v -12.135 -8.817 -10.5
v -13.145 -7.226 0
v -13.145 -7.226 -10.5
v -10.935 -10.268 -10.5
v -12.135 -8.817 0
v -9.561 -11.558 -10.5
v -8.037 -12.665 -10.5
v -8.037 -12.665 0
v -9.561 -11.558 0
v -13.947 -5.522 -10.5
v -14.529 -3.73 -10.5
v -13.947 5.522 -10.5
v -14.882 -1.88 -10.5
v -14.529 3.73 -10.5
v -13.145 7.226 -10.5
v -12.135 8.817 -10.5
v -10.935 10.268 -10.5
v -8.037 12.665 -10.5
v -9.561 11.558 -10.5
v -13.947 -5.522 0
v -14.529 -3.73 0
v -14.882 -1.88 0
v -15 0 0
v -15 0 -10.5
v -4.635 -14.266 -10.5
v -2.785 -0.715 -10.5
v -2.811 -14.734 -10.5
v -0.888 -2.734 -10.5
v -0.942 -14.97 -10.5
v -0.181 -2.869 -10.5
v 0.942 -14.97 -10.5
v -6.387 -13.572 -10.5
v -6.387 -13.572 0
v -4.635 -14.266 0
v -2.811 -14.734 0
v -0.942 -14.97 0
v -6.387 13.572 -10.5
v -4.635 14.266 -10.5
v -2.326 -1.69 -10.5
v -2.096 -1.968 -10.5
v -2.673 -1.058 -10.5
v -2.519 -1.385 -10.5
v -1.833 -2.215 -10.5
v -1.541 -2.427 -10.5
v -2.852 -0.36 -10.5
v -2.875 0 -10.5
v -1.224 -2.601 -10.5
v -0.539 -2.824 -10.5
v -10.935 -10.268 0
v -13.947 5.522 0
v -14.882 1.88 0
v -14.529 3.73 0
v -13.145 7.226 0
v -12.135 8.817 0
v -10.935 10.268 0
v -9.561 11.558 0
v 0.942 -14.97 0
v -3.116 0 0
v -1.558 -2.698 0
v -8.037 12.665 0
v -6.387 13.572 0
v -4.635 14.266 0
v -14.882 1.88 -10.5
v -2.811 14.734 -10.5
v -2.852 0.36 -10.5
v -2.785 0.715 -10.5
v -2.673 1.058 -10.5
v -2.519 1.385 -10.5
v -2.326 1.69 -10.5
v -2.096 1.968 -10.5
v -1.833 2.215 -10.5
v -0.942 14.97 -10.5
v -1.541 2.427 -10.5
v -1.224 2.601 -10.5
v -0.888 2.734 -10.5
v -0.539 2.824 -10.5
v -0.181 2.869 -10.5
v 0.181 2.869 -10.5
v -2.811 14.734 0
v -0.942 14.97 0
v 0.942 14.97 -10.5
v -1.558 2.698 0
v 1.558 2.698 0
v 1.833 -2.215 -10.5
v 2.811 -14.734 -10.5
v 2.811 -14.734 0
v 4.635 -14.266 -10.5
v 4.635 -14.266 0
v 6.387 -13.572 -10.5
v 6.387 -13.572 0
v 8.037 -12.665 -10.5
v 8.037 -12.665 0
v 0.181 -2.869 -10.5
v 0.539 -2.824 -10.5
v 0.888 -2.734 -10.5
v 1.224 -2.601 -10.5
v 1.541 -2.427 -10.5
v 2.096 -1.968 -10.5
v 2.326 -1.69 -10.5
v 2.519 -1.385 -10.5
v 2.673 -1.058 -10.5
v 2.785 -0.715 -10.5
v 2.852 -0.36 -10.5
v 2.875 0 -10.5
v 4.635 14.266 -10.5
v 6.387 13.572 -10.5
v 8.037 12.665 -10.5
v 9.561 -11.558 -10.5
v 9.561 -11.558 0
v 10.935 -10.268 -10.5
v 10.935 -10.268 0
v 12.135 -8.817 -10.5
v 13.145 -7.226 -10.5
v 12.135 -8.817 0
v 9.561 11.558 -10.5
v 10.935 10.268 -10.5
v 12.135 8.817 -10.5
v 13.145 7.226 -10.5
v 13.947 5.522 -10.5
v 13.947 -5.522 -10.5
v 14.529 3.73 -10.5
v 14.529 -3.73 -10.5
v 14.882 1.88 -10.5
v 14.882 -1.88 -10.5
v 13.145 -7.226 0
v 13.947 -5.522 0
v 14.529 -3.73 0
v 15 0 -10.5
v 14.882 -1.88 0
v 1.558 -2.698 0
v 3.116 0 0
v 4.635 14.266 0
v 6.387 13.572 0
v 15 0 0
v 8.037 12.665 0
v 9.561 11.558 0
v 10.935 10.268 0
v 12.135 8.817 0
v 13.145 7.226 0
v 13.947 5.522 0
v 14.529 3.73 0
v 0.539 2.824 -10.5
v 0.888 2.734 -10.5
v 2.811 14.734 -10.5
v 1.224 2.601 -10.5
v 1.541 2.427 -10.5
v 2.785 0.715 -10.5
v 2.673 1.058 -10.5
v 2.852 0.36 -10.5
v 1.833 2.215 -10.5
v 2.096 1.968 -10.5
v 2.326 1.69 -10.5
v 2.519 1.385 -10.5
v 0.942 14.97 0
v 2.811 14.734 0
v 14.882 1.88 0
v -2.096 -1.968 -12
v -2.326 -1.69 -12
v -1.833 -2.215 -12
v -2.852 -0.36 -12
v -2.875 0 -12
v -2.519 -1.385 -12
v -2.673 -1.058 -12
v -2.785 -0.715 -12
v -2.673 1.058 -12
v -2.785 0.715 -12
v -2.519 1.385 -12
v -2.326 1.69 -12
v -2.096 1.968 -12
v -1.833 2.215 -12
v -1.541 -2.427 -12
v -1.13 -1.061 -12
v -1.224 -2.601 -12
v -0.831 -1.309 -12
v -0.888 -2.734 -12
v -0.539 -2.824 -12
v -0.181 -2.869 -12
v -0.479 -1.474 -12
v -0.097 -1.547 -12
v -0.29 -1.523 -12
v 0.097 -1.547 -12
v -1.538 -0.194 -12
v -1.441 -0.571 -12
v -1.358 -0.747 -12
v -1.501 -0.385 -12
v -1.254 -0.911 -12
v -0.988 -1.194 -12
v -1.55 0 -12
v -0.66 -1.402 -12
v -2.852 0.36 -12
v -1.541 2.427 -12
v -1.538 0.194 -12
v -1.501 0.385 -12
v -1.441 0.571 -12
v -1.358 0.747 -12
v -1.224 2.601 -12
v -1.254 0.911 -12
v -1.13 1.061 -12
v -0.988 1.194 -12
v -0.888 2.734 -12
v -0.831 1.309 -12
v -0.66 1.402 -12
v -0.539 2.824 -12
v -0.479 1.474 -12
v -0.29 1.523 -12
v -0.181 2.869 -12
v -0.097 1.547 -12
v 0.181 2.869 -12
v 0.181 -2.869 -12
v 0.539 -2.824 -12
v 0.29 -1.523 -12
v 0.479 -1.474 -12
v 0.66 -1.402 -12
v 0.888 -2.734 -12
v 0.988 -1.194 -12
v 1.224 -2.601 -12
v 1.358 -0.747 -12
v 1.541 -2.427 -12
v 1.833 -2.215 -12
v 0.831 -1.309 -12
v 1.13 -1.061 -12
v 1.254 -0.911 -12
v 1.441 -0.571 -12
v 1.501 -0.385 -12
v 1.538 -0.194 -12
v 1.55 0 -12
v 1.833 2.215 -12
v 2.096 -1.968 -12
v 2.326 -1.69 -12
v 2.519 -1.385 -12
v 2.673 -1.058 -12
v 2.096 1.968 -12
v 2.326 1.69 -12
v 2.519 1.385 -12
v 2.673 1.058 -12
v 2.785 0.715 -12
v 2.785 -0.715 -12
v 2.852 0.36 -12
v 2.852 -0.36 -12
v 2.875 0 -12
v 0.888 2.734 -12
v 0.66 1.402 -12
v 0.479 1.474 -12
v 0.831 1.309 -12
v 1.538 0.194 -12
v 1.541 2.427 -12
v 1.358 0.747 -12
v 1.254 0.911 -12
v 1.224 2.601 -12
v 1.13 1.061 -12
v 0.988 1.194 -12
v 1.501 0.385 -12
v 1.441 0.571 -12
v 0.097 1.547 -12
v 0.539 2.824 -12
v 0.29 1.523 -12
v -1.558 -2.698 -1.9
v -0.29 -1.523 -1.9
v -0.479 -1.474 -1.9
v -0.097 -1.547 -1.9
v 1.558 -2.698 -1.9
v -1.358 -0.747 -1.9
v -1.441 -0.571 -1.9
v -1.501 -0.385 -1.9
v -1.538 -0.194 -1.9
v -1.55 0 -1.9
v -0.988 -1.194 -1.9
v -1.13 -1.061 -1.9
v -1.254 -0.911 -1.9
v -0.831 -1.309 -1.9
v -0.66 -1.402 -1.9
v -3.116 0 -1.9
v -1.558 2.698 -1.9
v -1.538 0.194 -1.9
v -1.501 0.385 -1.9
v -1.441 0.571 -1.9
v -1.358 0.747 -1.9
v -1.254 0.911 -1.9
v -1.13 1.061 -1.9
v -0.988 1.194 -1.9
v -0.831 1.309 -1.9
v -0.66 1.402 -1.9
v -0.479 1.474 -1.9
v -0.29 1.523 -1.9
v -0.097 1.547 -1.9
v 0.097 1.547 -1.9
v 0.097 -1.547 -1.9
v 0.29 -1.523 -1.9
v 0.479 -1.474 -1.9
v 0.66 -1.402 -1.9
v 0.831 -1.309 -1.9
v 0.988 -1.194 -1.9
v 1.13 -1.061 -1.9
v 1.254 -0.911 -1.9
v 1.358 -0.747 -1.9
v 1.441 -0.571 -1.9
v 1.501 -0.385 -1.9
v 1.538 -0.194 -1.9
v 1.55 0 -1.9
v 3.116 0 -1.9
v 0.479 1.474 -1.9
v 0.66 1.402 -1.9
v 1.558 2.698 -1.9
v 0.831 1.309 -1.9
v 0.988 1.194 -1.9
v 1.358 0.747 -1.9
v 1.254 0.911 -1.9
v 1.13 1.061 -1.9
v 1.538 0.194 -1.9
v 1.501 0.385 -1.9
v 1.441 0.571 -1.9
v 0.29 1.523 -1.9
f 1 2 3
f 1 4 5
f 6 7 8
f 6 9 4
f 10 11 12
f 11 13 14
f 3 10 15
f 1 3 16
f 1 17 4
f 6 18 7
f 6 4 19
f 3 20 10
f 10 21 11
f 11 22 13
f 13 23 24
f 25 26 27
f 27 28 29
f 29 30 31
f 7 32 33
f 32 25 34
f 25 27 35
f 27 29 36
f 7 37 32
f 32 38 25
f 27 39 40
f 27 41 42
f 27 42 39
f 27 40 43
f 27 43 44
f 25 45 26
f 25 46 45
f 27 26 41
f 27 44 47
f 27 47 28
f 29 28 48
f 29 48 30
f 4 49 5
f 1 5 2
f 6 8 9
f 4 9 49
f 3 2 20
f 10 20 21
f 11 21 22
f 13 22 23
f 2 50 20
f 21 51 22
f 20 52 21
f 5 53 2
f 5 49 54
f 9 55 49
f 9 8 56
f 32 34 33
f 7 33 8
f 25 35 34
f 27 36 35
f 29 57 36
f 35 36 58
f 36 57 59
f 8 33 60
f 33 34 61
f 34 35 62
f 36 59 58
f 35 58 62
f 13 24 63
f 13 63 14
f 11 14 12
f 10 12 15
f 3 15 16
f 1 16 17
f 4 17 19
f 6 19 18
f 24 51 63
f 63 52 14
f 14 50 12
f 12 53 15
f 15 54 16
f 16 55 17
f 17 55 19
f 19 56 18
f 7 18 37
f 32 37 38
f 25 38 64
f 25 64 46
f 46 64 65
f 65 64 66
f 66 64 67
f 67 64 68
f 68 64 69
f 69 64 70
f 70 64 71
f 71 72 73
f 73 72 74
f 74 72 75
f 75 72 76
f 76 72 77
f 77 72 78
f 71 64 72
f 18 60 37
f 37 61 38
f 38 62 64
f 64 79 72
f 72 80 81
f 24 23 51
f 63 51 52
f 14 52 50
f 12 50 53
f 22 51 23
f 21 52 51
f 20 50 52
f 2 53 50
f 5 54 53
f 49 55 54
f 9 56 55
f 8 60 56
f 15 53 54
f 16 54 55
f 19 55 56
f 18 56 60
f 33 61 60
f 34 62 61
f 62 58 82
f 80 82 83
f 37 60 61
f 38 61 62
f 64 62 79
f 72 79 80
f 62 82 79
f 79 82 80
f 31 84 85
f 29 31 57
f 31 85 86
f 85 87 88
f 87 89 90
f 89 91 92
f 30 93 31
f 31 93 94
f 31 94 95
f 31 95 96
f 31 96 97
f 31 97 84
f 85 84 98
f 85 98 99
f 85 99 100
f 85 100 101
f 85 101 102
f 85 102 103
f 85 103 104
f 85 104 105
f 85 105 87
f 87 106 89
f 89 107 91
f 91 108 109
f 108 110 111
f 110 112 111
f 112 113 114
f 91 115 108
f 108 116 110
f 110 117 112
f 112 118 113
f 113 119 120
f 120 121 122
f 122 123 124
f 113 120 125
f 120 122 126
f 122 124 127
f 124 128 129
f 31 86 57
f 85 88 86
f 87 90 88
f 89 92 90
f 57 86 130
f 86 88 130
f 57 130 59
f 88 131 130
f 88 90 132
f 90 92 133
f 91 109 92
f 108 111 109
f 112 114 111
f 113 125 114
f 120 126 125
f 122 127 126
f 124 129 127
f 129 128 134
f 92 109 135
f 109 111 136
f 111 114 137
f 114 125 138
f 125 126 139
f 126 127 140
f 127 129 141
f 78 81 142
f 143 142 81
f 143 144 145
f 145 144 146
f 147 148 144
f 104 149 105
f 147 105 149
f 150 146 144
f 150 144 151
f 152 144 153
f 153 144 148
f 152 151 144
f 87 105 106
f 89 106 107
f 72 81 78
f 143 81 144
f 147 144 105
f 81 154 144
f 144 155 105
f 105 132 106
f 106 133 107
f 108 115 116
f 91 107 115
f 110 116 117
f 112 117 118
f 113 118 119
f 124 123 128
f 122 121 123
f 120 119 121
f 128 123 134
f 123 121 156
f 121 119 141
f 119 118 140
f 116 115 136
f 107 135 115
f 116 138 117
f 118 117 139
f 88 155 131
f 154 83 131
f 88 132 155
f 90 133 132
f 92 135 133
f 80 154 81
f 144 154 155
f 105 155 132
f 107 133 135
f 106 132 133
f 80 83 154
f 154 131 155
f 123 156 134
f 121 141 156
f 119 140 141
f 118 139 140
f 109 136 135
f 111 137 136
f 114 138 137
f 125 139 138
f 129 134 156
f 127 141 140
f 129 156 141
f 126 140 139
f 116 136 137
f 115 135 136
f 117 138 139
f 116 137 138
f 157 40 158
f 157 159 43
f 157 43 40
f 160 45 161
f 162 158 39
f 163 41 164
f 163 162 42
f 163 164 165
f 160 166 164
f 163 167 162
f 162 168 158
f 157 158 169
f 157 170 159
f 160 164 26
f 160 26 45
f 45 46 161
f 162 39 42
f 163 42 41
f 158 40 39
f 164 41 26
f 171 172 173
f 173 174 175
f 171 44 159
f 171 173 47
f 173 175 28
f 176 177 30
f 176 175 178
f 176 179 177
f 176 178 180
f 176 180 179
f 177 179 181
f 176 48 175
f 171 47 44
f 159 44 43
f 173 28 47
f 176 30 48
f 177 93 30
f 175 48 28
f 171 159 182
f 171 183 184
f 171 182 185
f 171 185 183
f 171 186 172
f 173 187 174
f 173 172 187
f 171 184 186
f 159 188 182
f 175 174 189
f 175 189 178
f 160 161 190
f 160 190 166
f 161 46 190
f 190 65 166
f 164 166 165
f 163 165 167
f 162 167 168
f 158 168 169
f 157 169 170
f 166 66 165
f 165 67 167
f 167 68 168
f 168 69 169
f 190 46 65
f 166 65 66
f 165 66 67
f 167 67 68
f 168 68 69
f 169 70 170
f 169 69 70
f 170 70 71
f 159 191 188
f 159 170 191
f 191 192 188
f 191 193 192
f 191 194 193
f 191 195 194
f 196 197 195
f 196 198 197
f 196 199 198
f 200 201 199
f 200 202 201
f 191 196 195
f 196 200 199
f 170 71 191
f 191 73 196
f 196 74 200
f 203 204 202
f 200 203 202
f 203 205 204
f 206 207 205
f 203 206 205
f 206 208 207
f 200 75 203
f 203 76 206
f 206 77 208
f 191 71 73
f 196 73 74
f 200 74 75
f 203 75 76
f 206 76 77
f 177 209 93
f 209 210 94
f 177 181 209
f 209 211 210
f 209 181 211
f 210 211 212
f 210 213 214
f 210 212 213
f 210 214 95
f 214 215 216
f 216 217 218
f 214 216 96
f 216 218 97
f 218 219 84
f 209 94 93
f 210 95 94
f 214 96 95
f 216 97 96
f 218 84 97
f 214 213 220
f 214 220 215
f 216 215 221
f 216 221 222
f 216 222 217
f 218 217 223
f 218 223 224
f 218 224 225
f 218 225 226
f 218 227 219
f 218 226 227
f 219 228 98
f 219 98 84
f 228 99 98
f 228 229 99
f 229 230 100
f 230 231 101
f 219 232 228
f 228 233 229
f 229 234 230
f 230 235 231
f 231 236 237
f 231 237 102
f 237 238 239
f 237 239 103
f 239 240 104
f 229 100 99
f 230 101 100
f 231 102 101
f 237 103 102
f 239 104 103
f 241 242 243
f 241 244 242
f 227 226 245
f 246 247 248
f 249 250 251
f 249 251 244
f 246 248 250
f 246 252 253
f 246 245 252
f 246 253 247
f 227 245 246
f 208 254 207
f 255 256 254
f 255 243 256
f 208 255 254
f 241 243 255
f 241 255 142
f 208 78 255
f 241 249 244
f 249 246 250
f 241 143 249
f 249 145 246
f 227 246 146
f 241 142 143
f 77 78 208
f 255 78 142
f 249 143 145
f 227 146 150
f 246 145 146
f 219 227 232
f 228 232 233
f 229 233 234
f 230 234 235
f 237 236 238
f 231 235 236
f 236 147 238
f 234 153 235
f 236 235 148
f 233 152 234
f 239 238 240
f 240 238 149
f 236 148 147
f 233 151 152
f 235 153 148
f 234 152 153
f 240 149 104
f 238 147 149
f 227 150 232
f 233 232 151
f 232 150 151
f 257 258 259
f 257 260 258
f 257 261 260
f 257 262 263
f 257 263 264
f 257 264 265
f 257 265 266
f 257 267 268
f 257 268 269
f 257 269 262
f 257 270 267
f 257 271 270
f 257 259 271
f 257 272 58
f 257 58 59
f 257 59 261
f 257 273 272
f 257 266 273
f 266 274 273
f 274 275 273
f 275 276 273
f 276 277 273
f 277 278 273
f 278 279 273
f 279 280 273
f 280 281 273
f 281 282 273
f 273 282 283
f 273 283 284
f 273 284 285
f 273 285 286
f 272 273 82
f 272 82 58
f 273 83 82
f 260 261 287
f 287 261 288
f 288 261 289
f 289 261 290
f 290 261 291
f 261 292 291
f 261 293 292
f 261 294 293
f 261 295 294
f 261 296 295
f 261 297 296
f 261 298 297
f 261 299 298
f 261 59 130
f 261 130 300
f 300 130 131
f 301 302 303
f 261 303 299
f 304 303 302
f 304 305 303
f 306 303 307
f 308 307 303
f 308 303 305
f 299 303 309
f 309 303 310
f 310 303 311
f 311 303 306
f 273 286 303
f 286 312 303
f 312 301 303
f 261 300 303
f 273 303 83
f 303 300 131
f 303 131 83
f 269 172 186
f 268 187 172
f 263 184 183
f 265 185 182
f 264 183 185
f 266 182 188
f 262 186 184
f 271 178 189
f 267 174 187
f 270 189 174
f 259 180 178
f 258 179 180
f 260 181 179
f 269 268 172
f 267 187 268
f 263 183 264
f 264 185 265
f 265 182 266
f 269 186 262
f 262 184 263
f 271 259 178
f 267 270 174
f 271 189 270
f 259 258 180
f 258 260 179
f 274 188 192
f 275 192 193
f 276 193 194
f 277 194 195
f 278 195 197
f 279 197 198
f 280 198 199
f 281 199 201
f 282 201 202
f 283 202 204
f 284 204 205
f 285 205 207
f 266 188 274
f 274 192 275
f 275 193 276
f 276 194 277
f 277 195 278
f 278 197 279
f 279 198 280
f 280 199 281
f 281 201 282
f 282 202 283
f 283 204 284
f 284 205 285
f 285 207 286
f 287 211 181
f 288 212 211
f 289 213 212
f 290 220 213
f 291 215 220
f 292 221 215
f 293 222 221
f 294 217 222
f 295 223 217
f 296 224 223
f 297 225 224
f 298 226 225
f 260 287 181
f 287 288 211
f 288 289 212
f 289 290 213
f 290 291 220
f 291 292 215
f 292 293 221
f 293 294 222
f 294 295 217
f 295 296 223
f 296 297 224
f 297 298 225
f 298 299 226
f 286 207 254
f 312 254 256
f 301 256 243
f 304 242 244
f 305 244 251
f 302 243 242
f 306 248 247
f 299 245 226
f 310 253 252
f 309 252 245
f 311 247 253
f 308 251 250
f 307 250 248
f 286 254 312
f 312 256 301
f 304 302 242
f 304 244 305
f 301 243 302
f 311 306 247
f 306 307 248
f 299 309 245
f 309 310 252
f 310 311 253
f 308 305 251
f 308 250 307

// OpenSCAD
$fn = 50;


difference() {
	union() {
		translate(v = [0, 0, -10.5000000000]) {
			cylinder(h = 10.5000000000, r = 15.0000000000);
		}
		#translate(v = [0, 0, -12.0000000000]) {
			cylinder(h = 12, r = 2.8750000000);
		}
	}
	union() {
		translate(v = [0, 0, 0]) {
			rotate(a = [0, 0, 0]) {
				difference() {
					union() {
						translate(v = [0, 0, -1.9000000000]) {
							linear_extrude(height = 1.9000000000) {
								polygon(points = [[3.1158000000, 0.0000000000], [1.5579000000, 2.6983619531], [-1.5579000000, 2.6983619531], [-3.1158000000, 0.0000000000], [-1.5579000000, -2.6983619531], [1.5579000000, -2.6983619531]]);
							}
						}
					}
					union();
				}
			}
		}
		#translate(v = [0, 0, -100.0000000000]) {
			cylinder(h = 200, r = 1.5500000000);
		}
	}
}
